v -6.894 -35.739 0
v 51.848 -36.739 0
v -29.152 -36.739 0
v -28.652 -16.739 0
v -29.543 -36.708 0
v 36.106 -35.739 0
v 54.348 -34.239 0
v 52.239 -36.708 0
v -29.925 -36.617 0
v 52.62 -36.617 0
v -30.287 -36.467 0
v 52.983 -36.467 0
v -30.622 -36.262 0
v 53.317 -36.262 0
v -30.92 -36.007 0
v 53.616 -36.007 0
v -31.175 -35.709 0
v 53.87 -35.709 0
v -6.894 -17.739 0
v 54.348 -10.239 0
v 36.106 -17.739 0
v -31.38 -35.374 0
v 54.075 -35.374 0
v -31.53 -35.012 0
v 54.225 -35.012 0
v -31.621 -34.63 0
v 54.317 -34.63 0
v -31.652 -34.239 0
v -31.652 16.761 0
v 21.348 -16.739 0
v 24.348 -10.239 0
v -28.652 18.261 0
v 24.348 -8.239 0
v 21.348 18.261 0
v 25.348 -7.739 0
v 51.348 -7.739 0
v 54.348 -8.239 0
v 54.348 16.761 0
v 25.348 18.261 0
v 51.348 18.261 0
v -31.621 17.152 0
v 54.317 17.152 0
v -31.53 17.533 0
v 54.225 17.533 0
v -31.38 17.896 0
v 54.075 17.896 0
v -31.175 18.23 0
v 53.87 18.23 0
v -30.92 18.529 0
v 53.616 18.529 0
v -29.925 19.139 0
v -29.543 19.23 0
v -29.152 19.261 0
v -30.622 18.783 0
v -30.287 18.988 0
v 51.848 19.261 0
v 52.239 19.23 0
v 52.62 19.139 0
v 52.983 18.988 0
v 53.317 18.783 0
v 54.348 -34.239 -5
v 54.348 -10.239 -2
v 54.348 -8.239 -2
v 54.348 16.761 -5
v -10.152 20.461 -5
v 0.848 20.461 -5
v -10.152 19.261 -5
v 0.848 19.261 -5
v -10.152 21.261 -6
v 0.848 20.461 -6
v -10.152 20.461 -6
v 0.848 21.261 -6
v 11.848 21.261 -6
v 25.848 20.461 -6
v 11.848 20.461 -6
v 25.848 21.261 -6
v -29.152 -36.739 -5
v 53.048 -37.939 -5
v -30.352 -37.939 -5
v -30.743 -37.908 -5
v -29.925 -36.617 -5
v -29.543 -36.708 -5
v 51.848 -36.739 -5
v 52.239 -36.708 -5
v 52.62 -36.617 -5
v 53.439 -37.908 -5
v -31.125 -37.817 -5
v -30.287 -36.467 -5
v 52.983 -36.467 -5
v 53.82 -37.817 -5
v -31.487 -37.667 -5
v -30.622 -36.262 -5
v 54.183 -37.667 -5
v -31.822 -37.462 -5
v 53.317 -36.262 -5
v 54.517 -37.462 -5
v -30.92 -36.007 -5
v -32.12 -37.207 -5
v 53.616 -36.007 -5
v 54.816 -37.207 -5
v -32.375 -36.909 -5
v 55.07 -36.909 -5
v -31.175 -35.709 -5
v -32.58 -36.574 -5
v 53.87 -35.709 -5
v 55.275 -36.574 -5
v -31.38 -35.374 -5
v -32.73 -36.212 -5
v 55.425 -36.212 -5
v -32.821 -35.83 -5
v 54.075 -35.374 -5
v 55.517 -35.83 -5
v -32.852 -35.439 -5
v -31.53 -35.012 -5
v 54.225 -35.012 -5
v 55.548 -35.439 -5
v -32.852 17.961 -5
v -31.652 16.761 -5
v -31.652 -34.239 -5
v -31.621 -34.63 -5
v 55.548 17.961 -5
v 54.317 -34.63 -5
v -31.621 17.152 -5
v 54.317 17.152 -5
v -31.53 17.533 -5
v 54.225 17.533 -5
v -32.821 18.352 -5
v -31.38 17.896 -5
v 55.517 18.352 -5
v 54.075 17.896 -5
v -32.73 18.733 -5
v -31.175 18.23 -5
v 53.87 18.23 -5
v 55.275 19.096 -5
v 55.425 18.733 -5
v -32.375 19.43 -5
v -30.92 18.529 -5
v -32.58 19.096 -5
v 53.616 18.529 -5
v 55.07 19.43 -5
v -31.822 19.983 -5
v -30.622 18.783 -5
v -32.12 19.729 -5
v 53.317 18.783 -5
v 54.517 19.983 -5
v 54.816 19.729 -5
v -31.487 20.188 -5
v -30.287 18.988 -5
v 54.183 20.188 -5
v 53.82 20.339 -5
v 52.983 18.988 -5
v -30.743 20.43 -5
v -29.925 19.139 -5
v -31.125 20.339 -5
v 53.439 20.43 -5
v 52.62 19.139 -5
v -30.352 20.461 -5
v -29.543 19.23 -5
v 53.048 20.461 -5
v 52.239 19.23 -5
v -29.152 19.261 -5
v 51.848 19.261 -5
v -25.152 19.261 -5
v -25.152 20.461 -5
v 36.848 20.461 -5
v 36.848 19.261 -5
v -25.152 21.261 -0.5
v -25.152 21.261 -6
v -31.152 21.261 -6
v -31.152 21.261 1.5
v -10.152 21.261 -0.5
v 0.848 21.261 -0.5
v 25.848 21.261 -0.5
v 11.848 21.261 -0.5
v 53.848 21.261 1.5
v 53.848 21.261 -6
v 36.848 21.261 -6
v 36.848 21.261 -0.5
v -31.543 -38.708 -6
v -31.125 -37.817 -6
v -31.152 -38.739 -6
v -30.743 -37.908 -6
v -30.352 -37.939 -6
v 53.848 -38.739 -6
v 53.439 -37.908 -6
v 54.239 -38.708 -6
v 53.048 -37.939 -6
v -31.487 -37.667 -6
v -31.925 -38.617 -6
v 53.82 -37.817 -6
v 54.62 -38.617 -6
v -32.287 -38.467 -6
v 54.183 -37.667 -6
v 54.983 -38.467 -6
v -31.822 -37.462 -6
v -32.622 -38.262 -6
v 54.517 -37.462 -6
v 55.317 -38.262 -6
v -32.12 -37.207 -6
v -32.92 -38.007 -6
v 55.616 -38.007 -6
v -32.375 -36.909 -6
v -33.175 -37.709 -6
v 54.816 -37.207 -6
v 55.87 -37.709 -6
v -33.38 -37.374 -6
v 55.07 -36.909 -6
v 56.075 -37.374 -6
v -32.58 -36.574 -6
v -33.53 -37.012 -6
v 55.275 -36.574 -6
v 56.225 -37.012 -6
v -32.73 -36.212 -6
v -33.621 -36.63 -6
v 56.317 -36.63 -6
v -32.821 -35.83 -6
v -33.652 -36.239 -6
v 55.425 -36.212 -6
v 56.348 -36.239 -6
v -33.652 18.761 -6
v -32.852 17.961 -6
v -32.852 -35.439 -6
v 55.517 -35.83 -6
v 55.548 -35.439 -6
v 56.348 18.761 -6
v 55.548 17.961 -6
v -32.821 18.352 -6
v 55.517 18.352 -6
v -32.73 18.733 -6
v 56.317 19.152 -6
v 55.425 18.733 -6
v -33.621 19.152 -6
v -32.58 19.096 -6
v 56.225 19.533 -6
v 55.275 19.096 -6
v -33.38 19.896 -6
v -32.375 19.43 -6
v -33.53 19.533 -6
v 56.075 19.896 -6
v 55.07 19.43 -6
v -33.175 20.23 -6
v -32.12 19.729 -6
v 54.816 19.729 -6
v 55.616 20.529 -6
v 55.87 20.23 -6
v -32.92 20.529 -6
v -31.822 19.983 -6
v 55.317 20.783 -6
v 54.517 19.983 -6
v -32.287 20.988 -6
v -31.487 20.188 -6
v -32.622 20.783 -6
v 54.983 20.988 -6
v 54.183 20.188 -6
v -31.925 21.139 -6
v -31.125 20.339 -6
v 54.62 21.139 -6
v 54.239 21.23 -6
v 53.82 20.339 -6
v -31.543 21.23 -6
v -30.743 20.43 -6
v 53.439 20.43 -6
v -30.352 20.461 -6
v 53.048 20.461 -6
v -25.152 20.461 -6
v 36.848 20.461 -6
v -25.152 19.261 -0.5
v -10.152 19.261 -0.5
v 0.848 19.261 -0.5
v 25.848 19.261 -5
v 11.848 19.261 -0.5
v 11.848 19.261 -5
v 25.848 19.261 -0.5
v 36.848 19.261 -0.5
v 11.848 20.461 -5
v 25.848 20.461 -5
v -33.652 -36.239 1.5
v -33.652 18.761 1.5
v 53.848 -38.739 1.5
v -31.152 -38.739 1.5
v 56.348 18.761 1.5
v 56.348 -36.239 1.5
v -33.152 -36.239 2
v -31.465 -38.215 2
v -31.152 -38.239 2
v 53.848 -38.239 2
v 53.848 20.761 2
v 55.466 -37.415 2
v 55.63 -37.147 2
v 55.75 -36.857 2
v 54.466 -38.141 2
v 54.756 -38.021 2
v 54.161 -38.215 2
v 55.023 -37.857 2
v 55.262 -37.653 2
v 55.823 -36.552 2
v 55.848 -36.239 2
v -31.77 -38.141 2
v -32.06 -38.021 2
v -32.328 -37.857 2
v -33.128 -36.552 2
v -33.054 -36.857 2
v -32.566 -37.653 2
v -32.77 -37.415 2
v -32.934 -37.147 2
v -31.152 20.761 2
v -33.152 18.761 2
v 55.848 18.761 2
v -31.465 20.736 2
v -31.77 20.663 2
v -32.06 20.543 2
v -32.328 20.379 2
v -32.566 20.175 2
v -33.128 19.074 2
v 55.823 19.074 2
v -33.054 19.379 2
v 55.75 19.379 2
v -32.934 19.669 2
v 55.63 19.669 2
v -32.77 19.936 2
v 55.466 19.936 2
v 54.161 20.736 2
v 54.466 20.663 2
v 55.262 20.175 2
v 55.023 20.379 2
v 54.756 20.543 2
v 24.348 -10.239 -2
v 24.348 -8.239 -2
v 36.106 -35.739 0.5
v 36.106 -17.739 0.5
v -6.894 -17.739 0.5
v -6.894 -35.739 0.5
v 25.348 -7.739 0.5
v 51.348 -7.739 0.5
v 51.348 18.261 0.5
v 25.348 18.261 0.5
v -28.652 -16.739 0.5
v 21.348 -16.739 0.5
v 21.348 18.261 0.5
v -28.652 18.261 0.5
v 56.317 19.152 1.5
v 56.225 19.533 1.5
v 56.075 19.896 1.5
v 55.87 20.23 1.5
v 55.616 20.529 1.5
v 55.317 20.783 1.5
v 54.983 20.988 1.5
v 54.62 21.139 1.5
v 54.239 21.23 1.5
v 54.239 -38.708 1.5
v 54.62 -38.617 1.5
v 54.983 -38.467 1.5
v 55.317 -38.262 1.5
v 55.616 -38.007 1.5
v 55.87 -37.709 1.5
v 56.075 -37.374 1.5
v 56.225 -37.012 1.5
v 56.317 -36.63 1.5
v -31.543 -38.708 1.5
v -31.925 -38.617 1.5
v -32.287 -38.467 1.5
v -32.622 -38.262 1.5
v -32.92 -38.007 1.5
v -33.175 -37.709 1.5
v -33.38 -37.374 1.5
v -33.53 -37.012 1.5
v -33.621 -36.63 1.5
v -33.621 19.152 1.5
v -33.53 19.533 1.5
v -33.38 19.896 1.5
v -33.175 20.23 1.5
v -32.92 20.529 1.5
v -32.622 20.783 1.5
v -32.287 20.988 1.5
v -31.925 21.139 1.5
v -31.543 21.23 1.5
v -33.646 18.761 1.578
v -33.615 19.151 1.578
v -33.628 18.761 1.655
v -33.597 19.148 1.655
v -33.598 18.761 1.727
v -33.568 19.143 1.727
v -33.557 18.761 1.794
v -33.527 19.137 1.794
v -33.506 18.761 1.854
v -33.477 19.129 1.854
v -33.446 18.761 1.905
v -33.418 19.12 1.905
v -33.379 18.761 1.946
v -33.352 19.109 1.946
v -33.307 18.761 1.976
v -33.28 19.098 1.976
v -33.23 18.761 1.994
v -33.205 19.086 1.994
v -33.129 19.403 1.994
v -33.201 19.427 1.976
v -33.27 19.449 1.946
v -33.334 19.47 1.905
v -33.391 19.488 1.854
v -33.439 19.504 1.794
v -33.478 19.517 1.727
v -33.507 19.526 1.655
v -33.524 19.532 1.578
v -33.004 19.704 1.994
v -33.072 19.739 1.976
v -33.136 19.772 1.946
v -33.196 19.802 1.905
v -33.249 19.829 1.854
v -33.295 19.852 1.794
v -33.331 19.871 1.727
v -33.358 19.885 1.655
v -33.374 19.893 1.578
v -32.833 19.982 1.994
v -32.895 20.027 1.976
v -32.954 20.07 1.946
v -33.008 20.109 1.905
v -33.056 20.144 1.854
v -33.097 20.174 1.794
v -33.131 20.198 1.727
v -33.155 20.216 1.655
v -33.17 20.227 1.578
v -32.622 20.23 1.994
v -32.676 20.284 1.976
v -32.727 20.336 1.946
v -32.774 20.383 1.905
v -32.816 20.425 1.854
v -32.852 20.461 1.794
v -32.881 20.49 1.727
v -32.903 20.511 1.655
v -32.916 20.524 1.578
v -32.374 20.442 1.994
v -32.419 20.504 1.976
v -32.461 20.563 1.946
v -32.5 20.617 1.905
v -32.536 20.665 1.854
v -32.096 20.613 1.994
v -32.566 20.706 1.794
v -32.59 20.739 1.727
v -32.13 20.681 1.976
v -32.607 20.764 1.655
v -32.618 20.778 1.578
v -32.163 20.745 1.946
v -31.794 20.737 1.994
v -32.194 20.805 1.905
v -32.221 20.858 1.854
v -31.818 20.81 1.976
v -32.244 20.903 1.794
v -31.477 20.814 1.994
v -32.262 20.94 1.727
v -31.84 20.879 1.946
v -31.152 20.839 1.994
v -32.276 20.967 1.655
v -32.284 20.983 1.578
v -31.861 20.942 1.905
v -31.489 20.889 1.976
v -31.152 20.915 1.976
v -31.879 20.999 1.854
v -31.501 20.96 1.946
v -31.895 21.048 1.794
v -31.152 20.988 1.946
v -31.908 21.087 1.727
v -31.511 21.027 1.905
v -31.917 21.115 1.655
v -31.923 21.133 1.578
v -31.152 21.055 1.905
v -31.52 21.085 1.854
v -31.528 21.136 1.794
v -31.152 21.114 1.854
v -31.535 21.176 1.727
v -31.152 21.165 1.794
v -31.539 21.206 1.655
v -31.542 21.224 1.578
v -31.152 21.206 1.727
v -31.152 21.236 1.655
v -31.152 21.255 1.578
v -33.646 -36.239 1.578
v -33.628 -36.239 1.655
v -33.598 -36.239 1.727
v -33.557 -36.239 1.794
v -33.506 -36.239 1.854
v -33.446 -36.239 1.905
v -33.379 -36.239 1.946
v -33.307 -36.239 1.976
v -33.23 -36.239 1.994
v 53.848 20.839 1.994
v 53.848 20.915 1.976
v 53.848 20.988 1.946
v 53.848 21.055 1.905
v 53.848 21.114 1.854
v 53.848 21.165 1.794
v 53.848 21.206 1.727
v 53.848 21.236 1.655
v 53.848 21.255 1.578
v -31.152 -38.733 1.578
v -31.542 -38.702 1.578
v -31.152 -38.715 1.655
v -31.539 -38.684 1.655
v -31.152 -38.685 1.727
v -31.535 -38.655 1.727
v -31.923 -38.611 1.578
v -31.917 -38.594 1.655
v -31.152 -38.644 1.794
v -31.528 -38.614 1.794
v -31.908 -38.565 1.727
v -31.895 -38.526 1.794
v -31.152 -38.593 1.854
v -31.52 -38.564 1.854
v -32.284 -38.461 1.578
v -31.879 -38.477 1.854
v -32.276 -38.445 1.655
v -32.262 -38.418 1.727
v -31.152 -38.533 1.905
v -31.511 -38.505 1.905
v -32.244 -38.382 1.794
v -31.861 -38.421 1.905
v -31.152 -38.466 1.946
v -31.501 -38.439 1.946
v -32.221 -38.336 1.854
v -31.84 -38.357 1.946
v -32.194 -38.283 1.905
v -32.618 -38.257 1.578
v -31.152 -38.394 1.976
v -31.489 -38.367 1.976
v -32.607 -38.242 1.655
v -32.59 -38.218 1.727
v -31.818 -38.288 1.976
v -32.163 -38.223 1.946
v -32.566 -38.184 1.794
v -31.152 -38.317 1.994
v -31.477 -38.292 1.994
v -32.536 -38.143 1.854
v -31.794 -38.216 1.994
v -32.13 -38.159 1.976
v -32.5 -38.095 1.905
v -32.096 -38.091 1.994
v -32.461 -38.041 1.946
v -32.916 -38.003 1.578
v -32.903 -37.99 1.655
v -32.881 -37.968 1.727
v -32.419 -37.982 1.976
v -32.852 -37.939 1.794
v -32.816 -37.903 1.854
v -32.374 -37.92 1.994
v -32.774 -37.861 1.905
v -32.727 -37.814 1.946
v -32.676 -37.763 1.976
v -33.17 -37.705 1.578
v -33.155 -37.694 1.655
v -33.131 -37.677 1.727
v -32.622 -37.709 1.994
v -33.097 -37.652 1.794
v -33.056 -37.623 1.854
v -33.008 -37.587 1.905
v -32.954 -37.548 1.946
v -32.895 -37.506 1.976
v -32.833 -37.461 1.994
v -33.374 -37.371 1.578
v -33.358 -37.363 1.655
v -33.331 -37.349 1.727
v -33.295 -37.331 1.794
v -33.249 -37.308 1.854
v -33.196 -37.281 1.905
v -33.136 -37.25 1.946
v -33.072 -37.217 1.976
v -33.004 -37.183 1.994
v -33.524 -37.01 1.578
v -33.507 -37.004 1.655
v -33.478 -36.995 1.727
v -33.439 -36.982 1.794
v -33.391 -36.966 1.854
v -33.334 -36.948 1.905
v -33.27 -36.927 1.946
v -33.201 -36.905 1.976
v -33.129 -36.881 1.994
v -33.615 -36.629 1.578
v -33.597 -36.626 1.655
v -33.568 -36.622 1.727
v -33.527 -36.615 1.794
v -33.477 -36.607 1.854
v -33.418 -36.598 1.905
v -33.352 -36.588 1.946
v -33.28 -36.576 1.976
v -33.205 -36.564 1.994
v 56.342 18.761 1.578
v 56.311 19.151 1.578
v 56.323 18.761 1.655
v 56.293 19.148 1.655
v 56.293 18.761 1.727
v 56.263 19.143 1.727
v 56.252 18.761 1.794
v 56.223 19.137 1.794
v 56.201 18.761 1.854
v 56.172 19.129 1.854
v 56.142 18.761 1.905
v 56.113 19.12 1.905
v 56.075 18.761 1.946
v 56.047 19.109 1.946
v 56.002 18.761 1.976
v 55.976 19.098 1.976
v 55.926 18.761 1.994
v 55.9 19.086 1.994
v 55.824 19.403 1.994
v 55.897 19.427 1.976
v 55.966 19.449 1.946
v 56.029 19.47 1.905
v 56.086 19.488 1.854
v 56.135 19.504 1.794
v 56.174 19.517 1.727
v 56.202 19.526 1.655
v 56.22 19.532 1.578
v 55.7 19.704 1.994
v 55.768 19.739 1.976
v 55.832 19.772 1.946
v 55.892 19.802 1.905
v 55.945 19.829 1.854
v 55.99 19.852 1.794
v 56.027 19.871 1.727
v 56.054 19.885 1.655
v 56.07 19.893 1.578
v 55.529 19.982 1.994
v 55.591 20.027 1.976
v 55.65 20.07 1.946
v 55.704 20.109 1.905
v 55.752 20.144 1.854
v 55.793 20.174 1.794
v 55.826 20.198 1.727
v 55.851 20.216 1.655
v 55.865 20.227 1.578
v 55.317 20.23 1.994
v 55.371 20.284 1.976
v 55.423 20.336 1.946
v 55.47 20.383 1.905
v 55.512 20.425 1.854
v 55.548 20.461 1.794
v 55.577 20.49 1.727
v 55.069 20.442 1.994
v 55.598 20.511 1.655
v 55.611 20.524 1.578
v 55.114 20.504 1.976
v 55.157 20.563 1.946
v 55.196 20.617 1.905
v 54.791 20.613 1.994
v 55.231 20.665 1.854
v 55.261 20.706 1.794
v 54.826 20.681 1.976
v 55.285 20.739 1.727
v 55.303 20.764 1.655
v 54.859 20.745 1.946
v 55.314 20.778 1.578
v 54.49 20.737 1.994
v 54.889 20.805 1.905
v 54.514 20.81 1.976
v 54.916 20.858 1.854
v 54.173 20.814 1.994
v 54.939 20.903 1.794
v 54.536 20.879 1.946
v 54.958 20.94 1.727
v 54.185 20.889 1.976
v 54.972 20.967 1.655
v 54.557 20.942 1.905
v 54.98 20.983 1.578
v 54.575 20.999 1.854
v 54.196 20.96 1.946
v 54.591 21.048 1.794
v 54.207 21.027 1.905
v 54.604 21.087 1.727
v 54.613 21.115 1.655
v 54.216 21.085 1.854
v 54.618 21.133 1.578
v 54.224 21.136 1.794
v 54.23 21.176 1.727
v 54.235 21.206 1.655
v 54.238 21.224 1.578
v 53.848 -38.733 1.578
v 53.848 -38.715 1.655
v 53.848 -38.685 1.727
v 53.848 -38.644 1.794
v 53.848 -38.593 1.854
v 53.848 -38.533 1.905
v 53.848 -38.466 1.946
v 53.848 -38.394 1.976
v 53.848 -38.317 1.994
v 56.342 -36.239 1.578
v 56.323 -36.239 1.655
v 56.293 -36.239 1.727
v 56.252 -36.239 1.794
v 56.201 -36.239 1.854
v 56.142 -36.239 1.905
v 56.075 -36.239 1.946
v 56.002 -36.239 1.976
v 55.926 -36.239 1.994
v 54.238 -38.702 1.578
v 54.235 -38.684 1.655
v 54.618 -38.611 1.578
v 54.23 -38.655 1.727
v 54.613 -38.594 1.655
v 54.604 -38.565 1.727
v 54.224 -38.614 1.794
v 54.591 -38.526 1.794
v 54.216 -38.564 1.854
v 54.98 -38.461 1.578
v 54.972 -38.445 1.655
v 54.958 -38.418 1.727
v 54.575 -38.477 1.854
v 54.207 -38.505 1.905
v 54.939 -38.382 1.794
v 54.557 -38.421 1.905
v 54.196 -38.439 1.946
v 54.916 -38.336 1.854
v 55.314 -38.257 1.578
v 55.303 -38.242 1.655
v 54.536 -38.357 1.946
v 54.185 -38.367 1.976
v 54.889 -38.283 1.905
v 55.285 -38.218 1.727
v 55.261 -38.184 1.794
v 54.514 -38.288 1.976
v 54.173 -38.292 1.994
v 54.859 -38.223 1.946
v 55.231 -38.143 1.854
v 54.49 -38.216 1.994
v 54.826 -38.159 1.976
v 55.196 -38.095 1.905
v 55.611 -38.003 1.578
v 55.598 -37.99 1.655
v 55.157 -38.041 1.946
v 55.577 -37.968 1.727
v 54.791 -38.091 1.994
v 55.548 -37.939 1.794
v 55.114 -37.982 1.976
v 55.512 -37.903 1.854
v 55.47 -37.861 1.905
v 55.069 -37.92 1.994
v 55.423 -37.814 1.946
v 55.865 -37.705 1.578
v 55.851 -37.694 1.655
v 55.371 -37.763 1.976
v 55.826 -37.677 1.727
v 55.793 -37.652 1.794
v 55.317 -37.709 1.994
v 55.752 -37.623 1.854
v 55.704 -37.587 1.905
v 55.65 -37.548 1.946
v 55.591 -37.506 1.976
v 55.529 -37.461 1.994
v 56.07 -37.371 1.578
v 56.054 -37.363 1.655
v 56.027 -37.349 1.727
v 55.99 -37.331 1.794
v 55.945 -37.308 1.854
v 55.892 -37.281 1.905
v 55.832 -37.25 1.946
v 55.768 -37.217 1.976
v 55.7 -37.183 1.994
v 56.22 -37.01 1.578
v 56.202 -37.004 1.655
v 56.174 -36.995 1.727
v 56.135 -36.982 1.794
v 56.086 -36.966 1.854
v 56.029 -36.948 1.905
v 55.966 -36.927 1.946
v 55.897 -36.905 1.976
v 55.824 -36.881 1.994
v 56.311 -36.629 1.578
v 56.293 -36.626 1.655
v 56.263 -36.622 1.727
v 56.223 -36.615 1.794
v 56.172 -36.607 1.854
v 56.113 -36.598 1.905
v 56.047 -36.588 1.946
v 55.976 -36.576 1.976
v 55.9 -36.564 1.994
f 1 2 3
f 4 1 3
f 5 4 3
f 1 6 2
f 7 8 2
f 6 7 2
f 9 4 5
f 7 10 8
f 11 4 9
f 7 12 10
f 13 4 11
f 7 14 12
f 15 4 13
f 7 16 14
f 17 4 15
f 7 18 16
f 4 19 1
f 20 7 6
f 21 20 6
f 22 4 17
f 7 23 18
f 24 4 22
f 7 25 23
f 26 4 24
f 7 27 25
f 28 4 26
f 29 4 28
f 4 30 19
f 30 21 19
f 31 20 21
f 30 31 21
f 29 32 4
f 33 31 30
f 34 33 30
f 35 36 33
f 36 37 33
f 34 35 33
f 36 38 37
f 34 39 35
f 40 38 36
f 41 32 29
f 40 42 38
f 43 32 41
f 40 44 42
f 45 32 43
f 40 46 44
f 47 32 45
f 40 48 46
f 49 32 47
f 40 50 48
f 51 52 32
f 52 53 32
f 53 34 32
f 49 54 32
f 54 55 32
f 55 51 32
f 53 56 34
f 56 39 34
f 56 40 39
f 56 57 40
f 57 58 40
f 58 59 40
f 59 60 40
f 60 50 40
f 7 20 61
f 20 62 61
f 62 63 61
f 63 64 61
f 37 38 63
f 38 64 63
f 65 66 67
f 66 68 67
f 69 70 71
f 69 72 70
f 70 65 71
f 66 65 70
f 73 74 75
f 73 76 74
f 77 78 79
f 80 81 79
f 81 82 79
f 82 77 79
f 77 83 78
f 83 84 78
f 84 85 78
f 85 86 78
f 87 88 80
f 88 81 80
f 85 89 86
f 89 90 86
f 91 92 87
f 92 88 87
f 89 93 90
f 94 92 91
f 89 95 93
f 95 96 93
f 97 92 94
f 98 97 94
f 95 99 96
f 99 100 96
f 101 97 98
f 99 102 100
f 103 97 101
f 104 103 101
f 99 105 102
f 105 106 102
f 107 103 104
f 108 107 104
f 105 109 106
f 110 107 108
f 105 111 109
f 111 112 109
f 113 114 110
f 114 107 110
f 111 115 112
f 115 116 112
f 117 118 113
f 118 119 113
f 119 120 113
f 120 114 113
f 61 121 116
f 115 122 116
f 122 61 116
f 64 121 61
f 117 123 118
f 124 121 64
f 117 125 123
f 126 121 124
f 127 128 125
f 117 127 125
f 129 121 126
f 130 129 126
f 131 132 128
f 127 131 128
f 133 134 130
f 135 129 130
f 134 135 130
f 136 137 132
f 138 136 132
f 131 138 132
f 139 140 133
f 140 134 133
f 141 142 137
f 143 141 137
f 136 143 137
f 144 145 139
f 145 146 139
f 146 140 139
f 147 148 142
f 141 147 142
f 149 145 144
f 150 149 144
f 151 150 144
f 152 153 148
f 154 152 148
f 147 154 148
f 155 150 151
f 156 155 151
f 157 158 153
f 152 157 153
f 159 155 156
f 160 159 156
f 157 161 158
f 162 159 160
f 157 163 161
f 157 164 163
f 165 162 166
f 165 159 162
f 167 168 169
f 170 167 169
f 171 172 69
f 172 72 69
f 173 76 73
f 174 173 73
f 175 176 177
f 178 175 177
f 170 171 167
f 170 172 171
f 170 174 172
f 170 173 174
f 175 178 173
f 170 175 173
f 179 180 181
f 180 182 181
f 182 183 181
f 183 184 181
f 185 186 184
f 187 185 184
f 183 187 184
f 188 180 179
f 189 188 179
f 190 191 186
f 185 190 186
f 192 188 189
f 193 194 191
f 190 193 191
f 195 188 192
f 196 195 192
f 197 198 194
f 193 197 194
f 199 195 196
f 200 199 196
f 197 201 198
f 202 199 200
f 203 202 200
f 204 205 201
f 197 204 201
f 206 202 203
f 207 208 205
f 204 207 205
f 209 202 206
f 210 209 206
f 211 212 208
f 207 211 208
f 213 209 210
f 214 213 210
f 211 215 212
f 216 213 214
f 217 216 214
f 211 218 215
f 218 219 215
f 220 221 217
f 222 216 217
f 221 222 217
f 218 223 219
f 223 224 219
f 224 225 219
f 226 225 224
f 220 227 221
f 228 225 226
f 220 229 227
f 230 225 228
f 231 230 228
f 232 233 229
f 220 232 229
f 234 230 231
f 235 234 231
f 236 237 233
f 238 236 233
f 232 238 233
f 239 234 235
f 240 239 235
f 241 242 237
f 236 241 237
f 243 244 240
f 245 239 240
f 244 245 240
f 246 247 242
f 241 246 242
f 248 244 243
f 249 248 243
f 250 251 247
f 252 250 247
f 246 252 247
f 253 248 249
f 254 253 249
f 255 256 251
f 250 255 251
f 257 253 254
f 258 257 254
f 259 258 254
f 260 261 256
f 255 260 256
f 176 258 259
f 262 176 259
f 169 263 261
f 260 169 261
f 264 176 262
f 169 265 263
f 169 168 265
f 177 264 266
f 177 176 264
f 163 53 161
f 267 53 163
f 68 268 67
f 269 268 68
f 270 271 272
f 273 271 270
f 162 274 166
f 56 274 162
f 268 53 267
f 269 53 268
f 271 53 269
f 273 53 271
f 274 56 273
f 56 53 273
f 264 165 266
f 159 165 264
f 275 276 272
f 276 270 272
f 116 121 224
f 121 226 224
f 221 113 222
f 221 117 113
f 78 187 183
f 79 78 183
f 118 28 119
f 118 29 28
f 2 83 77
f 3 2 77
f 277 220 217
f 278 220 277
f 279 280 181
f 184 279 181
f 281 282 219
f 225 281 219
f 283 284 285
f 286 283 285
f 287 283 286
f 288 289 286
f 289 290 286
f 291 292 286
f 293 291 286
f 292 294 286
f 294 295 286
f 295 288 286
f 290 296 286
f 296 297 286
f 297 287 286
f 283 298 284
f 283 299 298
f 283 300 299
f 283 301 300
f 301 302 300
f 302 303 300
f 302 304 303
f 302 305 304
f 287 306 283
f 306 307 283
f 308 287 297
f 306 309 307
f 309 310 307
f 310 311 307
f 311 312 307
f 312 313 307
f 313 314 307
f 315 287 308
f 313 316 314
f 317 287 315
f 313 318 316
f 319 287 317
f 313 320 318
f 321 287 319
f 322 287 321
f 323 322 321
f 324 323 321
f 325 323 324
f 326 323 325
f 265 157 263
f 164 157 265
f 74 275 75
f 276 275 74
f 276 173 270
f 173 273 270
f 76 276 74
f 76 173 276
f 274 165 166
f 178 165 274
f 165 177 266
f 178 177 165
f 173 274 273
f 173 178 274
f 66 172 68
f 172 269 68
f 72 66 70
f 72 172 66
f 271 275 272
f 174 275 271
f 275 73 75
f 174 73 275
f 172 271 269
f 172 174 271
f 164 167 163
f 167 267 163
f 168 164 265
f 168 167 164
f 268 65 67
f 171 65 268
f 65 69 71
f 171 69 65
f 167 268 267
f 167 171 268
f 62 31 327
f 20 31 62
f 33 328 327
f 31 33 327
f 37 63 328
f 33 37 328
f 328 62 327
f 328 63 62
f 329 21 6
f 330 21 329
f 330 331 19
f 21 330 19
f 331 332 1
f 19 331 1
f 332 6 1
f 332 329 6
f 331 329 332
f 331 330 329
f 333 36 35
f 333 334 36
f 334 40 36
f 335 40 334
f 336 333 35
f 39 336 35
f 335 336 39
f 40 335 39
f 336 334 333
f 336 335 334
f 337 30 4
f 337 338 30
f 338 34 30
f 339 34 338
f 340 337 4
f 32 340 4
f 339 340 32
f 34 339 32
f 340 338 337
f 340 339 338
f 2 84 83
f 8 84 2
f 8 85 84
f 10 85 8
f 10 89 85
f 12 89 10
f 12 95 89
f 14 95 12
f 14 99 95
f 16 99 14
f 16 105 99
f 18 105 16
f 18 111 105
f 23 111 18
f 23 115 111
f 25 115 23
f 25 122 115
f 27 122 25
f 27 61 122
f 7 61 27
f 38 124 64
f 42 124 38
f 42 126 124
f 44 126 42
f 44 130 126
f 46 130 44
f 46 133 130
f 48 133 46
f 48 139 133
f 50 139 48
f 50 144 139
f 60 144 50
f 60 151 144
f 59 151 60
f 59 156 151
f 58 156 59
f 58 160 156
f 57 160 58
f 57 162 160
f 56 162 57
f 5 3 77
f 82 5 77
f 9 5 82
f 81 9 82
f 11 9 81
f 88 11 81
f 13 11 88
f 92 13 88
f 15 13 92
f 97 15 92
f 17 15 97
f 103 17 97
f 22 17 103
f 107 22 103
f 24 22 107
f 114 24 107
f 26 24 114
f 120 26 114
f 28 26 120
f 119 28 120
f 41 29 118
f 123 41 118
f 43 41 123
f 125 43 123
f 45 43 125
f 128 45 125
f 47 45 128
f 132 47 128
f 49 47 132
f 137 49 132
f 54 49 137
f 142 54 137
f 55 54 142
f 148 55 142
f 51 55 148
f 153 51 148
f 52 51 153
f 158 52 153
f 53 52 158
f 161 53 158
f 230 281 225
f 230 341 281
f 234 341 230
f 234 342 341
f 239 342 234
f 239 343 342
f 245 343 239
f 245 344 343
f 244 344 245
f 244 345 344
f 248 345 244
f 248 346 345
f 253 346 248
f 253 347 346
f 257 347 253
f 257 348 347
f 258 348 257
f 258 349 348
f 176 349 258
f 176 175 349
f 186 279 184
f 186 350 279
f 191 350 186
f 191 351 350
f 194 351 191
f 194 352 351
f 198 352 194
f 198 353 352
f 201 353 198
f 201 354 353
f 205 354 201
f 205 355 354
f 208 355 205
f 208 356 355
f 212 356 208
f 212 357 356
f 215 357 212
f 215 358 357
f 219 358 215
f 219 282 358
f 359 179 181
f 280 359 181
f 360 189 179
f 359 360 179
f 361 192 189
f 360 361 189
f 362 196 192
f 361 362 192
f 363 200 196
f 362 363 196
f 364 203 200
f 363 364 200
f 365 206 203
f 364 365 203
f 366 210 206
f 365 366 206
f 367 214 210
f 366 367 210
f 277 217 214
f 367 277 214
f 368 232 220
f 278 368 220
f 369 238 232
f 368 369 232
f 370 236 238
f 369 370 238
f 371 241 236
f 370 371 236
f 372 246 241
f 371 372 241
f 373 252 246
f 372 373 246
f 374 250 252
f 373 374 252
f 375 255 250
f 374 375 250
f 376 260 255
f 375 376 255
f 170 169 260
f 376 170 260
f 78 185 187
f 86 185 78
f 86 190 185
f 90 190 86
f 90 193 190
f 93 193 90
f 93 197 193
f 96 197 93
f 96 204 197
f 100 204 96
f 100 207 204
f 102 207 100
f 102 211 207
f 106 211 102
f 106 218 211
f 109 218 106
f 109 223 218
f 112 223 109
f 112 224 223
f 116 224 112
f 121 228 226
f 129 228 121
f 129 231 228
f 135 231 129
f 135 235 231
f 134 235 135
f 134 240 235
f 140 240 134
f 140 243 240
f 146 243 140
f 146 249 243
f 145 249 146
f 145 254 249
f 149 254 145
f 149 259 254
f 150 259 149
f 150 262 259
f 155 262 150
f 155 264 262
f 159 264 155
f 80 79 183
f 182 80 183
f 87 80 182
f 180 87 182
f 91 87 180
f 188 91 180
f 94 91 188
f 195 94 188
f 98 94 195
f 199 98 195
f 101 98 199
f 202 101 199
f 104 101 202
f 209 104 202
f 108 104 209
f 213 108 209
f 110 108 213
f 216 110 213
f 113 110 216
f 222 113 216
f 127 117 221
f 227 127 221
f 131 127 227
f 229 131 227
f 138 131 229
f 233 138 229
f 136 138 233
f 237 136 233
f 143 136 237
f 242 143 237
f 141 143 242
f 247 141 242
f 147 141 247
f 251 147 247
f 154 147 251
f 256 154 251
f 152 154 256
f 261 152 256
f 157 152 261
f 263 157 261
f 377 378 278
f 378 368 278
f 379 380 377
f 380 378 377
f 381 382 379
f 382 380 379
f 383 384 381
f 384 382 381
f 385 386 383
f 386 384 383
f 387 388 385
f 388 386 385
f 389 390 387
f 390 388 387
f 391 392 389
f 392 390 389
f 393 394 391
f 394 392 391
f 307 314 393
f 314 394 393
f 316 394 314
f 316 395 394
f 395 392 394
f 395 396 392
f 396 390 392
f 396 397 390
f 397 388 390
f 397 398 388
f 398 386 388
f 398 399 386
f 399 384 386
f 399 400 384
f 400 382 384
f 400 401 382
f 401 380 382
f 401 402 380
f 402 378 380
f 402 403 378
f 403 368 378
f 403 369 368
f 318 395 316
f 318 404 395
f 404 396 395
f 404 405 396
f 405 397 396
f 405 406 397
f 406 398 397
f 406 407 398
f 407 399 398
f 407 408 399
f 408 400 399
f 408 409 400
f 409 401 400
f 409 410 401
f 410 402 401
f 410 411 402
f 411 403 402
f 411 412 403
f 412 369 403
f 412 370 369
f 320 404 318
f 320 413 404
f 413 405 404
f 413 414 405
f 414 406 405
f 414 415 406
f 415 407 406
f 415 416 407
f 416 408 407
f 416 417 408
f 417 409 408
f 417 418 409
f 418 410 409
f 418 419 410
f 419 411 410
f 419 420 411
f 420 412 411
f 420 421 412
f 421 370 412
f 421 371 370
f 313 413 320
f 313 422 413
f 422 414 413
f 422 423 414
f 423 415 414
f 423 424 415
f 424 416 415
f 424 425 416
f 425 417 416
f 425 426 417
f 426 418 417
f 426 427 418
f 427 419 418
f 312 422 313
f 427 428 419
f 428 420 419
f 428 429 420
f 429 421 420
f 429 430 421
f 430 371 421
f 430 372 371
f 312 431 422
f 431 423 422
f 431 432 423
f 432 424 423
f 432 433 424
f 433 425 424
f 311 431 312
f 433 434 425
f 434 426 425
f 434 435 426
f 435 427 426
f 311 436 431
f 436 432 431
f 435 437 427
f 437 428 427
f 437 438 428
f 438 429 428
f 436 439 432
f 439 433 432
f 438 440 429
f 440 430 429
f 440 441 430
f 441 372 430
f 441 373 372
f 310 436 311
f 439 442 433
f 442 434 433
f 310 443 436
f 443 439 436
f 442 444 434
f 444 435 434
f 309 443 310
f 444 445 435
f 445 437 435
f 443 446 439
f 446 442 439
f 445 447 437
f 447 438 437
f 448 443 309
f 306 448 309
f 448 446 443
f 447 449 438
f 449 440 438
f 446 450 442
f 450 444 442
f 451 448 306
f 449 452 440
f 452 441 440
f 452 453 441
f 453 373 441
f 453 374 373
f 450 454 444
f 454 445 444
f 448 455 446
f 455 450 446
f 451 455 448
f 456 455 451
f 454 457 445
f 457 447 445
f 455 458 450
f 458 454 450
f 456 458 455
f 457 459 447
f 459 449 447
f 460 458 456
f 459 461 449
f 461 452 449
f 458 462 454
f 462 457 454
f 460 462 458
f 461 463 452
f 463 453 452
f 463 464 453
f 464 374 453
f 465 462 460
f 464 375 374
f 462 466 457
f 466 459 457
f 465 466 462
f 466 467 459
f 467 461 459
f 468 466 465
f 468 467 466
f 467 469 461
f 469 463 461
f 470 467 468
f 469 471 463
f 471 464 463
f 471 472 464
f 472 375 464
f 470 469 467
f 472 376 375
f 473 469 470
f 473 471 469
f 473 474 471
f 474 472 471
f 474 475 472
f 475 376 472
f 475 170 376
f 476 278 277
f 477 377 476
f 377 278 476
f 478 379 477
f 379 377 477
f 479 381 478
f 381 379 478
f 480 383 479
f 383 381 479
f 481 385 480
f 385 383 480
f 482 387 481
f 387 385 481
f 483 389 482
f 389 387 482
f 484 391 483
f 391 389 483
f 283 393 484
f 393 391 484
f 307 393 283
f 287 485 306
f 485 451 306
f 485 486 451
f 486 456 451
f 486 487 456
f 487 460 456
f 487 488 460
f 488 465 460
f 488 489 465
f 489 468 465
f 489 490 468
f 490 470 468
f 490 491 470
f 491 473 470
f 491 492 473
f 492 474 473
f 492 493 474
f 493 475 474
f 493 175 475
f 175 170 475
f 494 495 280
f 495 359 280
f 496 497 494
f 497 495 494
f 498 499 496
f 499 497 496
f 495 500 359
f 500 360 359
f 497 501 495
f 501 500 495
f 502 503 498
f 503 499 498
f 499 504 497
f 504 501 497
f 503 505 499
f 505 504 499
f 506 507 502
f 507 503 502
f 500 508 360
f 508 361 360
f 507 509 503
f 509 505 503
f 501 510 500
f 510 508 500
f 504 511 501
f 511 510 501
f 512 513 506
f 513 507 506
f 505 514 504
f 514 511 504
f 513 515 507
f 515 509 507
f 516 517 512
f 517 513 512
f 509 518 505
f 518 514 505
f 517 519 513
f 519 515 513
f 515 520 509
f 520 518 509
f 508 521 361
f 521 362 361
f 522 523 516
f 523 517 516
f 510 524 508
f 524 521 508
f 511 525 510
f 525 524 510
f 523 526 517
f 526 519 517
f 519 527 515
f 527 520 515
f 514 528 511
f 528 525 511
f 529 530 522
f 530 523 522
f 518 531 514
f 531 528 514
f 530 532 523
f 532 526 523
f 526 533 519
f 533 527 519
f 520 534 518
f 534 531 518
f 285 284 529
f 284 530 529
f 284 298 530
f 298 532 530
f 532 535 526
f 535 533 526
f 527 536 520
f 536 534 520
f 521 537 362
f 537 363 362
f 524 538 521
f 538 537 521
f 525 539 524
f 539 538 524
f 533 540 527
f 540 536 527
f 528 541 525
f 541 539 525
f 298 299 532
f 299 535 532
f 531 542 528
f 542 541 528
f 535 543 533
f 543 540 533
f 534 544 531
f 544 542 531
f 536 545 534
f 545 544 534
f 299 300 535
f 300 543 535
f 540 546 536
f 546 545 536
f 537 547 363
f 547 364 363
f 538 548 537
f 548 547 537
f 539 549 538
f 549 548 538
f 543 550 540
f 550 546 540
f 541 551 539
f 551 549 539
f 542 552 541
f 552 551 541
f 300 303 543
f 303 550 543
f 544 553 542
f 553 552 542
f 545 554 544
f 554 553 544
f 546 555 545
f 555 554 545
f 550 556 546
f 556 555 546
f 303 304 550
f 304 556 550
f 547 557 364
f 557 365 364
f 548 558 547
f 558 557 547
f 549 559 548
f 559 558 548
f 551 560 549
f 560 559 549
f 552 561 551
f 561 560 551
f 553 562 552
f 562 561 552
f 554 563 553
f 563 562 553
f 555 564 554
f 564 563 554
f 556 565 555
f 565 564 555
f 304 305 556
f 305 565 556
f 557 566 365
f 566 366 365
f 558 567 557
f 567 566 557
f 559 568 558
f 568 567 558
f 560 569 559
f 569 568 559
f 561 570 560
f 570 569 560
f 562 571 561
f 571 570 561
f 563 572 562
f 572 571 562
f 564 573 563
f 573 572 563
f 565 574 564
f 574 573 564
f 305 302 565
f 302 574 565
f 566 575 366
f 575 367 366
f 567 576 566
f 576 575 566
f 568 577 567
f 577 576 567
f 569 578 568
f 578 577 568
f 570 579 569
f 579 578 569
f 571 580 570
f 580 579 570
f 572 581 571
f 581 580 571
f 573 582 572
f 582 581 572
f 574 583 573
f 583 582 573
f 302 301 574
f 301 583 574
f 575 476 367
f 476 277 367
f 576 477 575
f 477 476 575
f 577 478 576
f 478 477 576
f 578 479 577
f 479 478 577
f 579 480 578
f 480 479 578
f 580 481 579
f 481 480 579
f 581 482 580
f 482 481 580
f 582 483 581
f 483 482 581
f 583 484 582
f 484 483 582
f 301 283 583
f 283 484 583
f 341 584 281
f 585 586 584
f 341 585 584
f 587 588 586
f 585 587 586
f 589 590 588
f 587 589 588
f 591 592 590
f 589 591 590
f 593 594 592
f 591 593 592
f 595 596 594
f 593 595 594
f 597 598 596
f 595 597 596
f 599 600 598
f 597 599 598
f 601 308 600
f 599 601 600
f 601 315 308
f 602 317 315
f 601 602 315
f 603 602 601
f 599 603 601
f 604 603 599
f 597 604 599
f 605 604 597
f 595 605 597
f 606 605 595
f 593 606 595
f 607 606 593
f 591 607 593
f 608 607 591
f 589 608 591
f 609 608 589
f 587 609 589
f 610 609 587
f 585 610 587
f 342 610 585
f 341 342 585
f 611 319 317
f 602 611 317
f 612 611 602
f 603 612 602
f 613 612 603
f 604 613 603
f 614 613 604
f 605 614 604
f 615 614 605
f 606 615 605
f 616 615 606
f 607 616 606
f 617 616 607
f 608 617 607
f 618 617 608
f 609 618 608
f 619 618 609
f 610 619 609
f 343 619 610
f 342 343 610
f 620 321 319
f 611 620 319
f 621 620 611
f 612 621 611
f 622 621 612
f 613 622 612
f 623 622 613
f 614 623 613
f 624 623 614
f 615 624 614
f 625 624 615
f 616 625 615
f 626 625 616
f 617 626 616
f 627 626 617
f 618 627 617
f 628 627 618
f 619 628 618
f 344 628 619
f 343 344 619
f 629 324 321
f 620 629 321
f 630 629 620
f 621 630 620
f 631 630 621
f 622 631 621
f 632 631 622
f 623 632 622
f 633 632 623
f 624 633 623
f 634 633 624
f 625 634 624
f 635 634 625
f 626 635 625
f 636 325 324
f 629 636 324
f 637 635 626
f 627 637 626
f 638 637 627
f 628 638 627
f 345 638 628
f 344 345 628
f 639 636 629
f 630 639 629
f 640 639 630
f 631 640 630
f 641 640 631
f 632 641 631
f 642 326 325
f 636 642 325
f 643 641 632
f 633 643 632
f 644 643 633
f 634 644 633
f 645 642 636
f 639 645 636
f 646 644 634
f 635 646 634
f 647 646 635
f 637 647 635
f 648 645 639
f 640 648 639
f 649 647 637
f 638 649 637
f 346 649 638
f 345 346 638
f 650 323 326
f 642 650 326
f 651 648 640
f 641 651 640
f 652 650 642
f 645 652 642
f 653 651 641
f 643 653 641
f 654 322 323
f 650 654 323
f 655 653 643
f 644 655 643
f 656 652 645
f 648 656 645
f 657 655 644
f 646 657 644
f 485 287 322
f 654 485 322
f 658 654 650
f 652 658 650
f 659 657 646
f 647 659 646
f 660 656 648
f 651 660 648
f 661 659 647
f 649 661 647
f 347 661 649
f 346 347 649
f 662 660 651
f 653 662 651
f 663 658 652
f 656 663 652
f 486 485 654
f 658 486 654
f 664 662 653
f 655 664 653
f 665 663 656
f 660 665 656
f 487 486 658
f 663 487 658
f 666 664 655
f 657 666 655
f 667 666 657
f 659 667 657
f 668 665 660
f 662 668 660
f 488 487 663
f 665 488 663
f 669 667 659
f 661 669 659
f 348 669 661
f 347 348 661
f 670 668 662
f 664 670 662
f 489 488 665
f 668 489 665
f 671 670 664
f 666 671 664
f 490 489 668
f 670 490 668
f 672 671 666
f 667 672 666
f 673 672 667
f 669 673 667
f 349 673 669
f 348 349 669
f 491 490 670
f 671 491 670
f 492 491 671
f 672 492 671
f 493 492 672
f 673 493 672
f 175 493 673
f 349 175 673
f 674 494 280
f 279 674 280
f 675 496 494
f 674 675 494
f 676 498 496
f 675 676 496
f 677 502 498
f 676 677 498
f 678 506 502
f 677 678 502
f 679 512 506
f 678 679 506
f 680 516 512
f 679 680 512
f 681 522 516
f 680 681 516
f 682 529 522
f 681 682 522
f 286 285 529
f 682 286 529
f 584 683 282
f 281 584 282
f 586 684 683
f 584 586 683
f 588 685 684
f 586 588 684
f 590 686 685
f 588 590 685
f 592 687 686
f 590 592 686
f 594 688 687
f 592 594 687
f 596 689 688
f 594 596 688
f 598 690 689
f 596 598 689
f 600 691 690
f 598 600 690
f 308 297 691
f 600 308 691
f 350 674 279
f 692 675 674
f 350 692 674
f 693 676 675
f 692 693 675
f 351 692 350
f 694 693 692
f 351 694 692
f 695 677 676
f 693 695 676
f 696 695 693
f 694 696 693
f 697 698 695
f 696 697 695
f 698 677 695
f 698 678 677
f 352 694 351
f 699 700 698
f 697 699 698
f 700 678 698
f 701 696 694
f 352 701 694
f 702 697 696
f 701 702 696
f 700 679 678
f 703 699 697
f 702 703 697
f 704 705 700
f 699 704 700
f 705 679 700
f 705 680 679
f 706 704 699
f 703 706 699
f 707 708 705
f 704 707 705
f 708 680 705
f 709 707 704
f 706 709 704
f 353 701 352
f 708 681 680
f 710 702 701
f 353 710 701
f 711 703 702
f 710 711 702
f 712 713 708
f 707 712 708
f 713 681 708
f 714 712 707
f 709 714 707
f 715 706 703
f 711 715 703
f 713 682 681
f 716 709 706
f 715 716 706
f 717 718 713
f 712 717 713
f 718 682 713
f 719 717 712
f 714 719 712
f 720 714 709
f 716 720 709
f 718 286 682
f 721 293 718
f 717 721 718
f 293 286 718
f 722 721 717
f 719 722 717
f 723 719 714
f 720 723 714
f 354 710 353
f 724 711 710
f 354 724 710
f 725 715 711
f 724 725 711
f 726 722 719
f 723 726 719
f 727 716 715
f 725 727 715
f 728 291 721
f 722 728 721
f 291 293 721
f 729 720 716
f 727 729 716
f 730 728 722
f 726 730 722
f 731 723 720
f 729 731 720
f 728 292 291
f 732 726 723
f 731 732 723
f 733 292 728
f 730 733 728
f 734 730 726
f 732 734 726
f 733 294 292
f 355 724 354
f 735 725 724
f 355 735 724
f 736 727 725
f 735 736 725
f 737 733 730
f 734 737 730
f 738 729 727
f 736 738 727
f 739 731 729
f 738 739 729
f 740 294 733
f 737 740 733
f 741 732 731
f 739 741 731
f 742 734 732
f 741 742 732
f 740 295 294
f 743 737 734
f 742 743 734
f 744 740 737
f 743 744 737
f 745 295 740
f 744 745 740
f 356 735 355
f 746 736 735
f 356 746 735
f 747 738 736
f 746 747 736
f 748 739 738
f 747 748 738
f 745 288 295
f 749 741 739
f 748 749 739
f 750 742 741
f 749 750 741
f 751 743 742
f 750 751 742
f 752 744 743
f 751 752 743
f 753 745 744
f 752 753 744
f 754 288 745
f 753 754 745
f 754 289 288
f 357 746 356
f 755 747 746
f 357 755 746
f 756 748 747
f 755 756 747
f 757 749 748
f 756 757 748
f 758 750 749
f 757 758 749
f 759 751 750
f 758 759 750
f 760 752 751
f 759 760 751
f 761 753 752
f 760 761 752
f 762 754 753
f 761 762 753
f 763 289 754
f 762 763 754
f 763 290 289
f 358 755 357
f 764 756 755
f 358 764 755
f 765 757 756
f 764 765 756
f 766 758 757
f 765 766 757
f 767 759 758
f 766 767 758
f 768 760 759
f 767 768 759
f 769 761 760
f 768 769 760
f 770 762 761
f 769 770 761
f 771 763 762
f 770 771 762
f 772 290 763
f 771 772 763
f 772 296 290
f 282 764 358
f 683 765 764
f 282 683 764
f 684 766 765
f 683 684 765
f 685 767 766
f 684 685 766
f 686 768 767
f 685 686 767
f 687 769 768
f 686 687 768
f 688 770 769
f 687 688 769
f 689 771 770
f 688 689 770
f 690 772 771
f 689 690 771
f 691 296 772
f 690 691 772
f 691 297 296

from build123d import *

# Parameters (mm, degrees)
SKETCH_1_W          = 90
SKETCH_1_H          = 60
EXTRUDE_1_DEPTH     = 2
SKETCH_2_W          = 50
SKETCH_2_H          = 35
EXTRUDE_2_DEPTH     = 1
SKETCH_3_W          = 14
SKETCH_3_H          = 13
EXTRUDE_3_DEPTH     = 10
SKETCH_4_W          = 10
SKETCH_4_H          = 12
EXTRUDE_4_DEPTH     = 5
SKETCH_5_W          = 26
SKETCH_5_H          = 26
EXTRUDE_5_DEPTH     = 1
SKETCH_6_W          = 10
SKETCH_6_H          = 10
EXTRUDE_6_DEPTH     = 7
SKETCH_7_W          = 43
SKETCH_7_H          = 18
EXTRUDE_7_DEPTH     = 1
SKETCH_8_W          = 2
SKETCH_8_H          = 60
EXTRUDE_8_DEPTH     = 5
SKETCH_9_W          = 88
SKETCH_9_H          = 2
EXTRUDE_9_DEPTH     = 5
SKETCH_10_W         = 2
SKETCH_10_H         = 58
EXTRUDE_10_DEPTH    = 5
SKETCH_11_W         = 86
SKETCH_11_H         = 2
EXTRUDE_11_DEPTH    = 5
SKETCH_12_W         = 0.8
SKETCH_12_H         = 60
EXTRUDE_12_DEPTH    = 1
SKETCH_13_W         = 89.2
SKETCH_13_H         = 0.8
EXTRUDE_13_DEPTH    = 1
SKETCH_14_W         = 0.8
SKETCH_14_H         = 59.2
EXTRUDE_14_DEPTH    = 1
SKETCH_15_W         = 88.4
SKETCH_15_H         = 0.8
EXTRUDE_15_DEPTH    = 1
SKETCH_16_W         = 11
SKETCH_16_H         = 8
CUT_EXTRUDE_2_DEPTH = 34
SKETCH_17_W         = 11
SKETCH_17_H         = 6
CUT_EXTRUDE_3_DEPTH = 34
SKETCH_18_W         = 15
SKETCH_18_H         = 11
CUT_EXTRUDE_4_DEPTH = 34
SKETCH_19_W         = 30
SKETCH_19_H         = 2
EXTRUDE_16_DEPTH    = 2
SKETCH_20_W         = 43
SKETCH_20_H         = 18
CUT_EXTRUDE_5_DEPTH = 1.5
SKETCH_21_W         = 26
SKETCH_21_H         = 26
CUT_EXTRUDE_6_DEPTH = 1.5
SKETCH_22_W         = 50
SKETCH_22_H         = 35
CUT_EXTRUDE_7_DEPTH = 1.5
FILLET_1_R          = 2.5
FILLET_2_R          = 2.5
FILLET_3_R          = 0.5


with BuildPart() as part:
    # Эскиз1 → Бобышка-Вытянуть1 (new body)
    with BuildSketch(Plane.XY):
        with Locations((11.347826087, -8.739130435)):
            Rectangle(SKETCH_1_W, SKETCH_1_H)
    extrude(amount=EXTRUDE_1_DEPTH)

    # Эскиз2 → Бобышка-Вытянуть2 (add)
    with BuildSketch(Plane(origin=(0, 0, 0), x_dir=(-1, 0, 0), z_dir=(0, 0, -1))):
        with Locations((3.652173913, 0.760869565)):
            Rectangle(SKETCH_2_W, SKETCH_2_H)
    extrude(amount=EXTRUDE_2_DEPTH)

    # Эскиз3 → Бобышка-Вытянуть3 (add)
    with BuildSketch(Plane(origin=(0, 0, -1), x_dir=(-1, 0, 0), z_dir=(0, 0, -1))):
        with Locations((17.652173913, 5.760869565)):
            Rectangle(SKETCH_3_W, SKETCH_3_H)
    extrude(amount=EXTRUDE_3_DEPTH)

    # Эскиз4 → Бобышка-Вытянуть4 (add)
    with BuildSketch(Plane(origin=(0, 0, -1), x_dir=(-1, 0, 0), z_dir=(0, 0, -1))):
        with Locations((-6.347826087, 15.260869565)):
            Rectangle(SKETCH_4_W, SKETCH_4_H)
    extrude(amount=EXTRUDE_4_DEPTH)

    # Эскиз5 → Бобышка-Вытянуть5 (add)
    with BuildSketch(Plane(origin=(0, 0, 0), x_dir=(-1, 0, 0), z_dir=(0, 0, -1))):
        with Locations((-38.347826087, 5.260869565)):
            Rectangle(SKETCH_5_W, SKETCH_5_H)
    extrude(amount=EXTRUDE_5_DEPTH)

    # Эскиз6 → Бобышка-Вытянуть6 (add)
    with BuildSketch(Plane(origin=(0, 0, -1), x_dir=(-1, 0, 0), z_dir=(0, 0, -1))):
        with Locations((-31.347826087, 14.260869565)):
            Rectangle(SKETCH_6_W, SKETCH_6_H)
    extrude(amount=EXTRUDE_6_DEPTH)

    # Эскиз7 → Бобышка-Вытянуть7 (add)
    with BuildSketch(Plane(origin=(0, 0, 0), x_dir=(-1, 0, 0), z_dir=(0, 0, -1))):
        with Locations((-14.606181905, -26.739130435)):
            Rectangle(SKETCH_7_W, SKETCH_7_H)
    extrude(amount=EXTRUDE_7_DEPTH)

    # Эскиз8 → Бобышка-Вытянуть8 (add)
    with BuildSketch(Plane(origin=(0, 0, 0), x_dir=(-1, 0, 0), z_dir=(0, 0, -1))):
        with Locations((-55.347826087, -8.739130435)):
            Rectangle(SKETCH_8_W, SKETCH_8_H)
    extrude(amount=EXTRUDE_8_DEPTH)

    # Эскиз9 → Бобышка-Вытянуть9 (add)
    with BuildSketch(Plane(origin=(0, 0, 0), x_dir=(-1, 0, 0), z_dir=(0, 0, -1))):
        with Locations((-10.347826087, -37.739130435)):
            Rectangle(SKETCH_9_W, SKETCH_9_H)
    extrude(amount=EXTRUDE_9_DEPTH)

    # Эскиз10 → Бобышка-Вытянуть10 (add)
    with BuildSketch(Plane(origin=(0, 0, 0), x_dir=(-1, 0, 0), z_dir=(0, 0, -1))):
        with Locations((32.652173913, -7.739130435)):
            Rectangle(SKETCH_10_W, SKETCH_10_H)
    extrude(amount=EXTRUDE_10_DEPTH)

    # Эскиз11 → Бобышка-Вытянуть11 (add)
    with BuildSketch(Plane(origin=(0, 0, 0), x_dir=(-1, 0, 0), z_dir=(0, 0, -1))):
        with Locations((-11.347826087, 20.260869565)):
            Rectangle(SKETCH_11_W, SKETCH_11_H)
    extrude(amount=EXTRUDE_11_DEPTH)

    # Эскиз12 → Бобышка-Вытянуть12 (add)
    with BuildSketch(Plane(origin=(0, 0, -5), x_dir=(-1, 0, 0), z_dir=(0, 0, -1))):
        with Locations((-55.947826087, -8.739130435)):
            Rectangle(SKETCH_12_W, SKETCH_12_H)
    extrude(amount=EXTRUDE_12_DEPTH)

    # Эскиз13 → Бобышка-Вытянуть13 (add)
    with BuildSketch(Plane(origin=(0, 0, -5), x_dir=(-1, 0, 0), z_dir=(0, 0, -1))):
        with Locations((-10.947826087, -38.339130435)):
            Rectangle(SKETCH_13_W, SKETCH_13_H)
    extrude(amount=EXTRUDE_13_DEPTH)

    # Эскиз14 → Бобышка-Вытянуть14 (add)
    with BuildSketch(Plane(origin=(0, 0, -5), x_dir=(-1, 0, 0), z_dir=(0, 0, -1))):
        with Locations((33.252173913, -8.339130435)):
            Rectangle(SKETCH_14_W, SKETCH_14_H)
    extrude(amount=EXTRUDE_14_DEPTH)

    # Эскиз15 → Бобышка-Вытянуть15 (add)
    with BuildSketch(Plane(origin=(0, 0, -5), x_dir=(-1, 0, 0), z_dir=(0, 0, -1))):
        with Locations((-11.347826087, 20.860869565)):
            Rectangle(SKETCH_15_W, SKETCH_15_H)
    extrude(amount=EXTRUDE_15_DEPTH)

    # Эскиз16 → Вырез-Вытянуть2 (cut)
    with BuildSketch(Plane.XZ.offset(-9.260869565)):
        with Locations((31.347826087, -4.5)):
            Rectangle(SKETCH_16_W, SKETCH_16_H)
    extrude(amount=-CUT_EXTRUDE_2_DEPTH, mode=Mode.SUBTRACT)

    # Эскиз17 → Вырез-Вытянуть3 (cut)
    with BuildSketch(Plane.XZ.offset(-9.260869565)):
        with Locations((6.347826087, -3.5)):
            Rectangle(SKETCH_17_W, SKETCH_17_H)
    extrude(amount=-CUT_EXTRUDE_3_DEPTH, mode=Mode.SUBTRACT)

    # Эскиз18 → Вырез-Вытянуть4 (cut)
    with BuildSketch(Plane.XZ.offset(0.739130435)):
        with Locations((-17.652173913, -6)):
            Rectangle(SKETCH_18_W, SKETCH_18_H)
    extrude(amount=-CUT_EXTRUDE_4_DEPTH, mode=Mode.SUBTRACT)

    # Эскиз19 → Бобышка-Вытянуть16 (add)
    with BuildSketch(Plane(origin=(0, 0, 0), x_dir=(-1, 0, 0), z_dir=(0, 0, -1))):
        with Locations((-39.347826087, -9.239130435)):
            Rectangle(SKETCH_19_W, SKETCH_19_H)
    extrude(amount=EXTRUDE_16_DEPTH)

    # Эскиз20 → Вырез-Вытянуть5 (cut)
    with BuildSketch(Plane(origin=(0, 0, -1), x_dir=(-1, 0, 0), z_dir=(0, 0, -1))):
        with Locations((-14.606181905, -26.739130435)):
            Rectangle(SKETCH_20_W, SKETCH_20_H)
    extrude(amount=-CUT_EXTRUDE_5_DEPTH, mode=Mode.SUBTRACT)

    # Эскиз21 → Вырез-Вытянуть6 (cut)
    with BuildSketch(Plane(origin=(0, 0, -1), x_dir=(-1, 0, 0), z_dir=(0, 0, -1))):
        with Locations((-38.347826087, 5.260869565)):
            Rectangle(SKETCH_21_W, SKETCH_21_H)
    extrude(amount=-CUT_EXTRUDE_6_DEPTH, mode=Mode.SUBTRACT)

    # Эскиз22 → Вырез-Вытянуть7 (cut)
    with BuildSketch(Plane(origin=(0, 0, -1), x_dir=(-1, 0, 0), z_dir=(0, 0, -1))):
        with Locations((3.652173913, 0.760869565)):
            Rectangle(SKETCH_22_W, SKETCH_22_H)
    extrude(amount=-CUT_EXTRUDE_7_DEPTH, mode=Mode.SUBTRACT)

    # Скругление1
    fillet_1_edges = [part.edges().sort_by_distance(p)[0] for p in [
        (54.347826087, -36.739130435, -2.5),
        (-31.652173913, -36.739130435, -2.5),
        (54.347826087, 19.260869565, -2.5),
        (-31.652173913, 19.260869565, -2.5),
        (-33.652173913, 21.260869565, -2),
        (56.347826087, 21.260869565, -2),
        (56.347826087, -38.739130435, -2),
        (-33.652173913, -38.739130435, -2),
    ]]
    fillet(fillet_1_edges, radius=FILLET_1_R)

    # Скругление2
    fillet_2_edges = [part.edges().sort_by_distance(p)[0] for p in [
        (55.547826087, -37.939130435, -5.5),
        (-32.852173913, -37.939130435, -5.5),
        (55.547826087, 20.460869565, -5.5),
        (-32.852173913, 20.460869565, -5.5),
    ]]
    fillet(fillet_2_edges, radius=FILLET_2_R)

    # Скругление3
    fillet_3_edges = [part.edges().sort_by_distance(p)[0] for p in [
        (11.347826087, 21.260869565, 2),
        (56.347826087, -8.739130435, 2),
        (-33.652173913, -8.739130435, 2),
        (11.347826087, -38.739130435, 2),
        (-32.919940866, 20.528636518, 2),
        (-32.919940866, -38.006897388, 2),
        (55.61559304, -38.006897388, 2),
        (55.61559304, 20.528636518, 2),
    ]]
    fillet(fillet_3_edges, radius=FILLET_3_R)


solid = part.part
